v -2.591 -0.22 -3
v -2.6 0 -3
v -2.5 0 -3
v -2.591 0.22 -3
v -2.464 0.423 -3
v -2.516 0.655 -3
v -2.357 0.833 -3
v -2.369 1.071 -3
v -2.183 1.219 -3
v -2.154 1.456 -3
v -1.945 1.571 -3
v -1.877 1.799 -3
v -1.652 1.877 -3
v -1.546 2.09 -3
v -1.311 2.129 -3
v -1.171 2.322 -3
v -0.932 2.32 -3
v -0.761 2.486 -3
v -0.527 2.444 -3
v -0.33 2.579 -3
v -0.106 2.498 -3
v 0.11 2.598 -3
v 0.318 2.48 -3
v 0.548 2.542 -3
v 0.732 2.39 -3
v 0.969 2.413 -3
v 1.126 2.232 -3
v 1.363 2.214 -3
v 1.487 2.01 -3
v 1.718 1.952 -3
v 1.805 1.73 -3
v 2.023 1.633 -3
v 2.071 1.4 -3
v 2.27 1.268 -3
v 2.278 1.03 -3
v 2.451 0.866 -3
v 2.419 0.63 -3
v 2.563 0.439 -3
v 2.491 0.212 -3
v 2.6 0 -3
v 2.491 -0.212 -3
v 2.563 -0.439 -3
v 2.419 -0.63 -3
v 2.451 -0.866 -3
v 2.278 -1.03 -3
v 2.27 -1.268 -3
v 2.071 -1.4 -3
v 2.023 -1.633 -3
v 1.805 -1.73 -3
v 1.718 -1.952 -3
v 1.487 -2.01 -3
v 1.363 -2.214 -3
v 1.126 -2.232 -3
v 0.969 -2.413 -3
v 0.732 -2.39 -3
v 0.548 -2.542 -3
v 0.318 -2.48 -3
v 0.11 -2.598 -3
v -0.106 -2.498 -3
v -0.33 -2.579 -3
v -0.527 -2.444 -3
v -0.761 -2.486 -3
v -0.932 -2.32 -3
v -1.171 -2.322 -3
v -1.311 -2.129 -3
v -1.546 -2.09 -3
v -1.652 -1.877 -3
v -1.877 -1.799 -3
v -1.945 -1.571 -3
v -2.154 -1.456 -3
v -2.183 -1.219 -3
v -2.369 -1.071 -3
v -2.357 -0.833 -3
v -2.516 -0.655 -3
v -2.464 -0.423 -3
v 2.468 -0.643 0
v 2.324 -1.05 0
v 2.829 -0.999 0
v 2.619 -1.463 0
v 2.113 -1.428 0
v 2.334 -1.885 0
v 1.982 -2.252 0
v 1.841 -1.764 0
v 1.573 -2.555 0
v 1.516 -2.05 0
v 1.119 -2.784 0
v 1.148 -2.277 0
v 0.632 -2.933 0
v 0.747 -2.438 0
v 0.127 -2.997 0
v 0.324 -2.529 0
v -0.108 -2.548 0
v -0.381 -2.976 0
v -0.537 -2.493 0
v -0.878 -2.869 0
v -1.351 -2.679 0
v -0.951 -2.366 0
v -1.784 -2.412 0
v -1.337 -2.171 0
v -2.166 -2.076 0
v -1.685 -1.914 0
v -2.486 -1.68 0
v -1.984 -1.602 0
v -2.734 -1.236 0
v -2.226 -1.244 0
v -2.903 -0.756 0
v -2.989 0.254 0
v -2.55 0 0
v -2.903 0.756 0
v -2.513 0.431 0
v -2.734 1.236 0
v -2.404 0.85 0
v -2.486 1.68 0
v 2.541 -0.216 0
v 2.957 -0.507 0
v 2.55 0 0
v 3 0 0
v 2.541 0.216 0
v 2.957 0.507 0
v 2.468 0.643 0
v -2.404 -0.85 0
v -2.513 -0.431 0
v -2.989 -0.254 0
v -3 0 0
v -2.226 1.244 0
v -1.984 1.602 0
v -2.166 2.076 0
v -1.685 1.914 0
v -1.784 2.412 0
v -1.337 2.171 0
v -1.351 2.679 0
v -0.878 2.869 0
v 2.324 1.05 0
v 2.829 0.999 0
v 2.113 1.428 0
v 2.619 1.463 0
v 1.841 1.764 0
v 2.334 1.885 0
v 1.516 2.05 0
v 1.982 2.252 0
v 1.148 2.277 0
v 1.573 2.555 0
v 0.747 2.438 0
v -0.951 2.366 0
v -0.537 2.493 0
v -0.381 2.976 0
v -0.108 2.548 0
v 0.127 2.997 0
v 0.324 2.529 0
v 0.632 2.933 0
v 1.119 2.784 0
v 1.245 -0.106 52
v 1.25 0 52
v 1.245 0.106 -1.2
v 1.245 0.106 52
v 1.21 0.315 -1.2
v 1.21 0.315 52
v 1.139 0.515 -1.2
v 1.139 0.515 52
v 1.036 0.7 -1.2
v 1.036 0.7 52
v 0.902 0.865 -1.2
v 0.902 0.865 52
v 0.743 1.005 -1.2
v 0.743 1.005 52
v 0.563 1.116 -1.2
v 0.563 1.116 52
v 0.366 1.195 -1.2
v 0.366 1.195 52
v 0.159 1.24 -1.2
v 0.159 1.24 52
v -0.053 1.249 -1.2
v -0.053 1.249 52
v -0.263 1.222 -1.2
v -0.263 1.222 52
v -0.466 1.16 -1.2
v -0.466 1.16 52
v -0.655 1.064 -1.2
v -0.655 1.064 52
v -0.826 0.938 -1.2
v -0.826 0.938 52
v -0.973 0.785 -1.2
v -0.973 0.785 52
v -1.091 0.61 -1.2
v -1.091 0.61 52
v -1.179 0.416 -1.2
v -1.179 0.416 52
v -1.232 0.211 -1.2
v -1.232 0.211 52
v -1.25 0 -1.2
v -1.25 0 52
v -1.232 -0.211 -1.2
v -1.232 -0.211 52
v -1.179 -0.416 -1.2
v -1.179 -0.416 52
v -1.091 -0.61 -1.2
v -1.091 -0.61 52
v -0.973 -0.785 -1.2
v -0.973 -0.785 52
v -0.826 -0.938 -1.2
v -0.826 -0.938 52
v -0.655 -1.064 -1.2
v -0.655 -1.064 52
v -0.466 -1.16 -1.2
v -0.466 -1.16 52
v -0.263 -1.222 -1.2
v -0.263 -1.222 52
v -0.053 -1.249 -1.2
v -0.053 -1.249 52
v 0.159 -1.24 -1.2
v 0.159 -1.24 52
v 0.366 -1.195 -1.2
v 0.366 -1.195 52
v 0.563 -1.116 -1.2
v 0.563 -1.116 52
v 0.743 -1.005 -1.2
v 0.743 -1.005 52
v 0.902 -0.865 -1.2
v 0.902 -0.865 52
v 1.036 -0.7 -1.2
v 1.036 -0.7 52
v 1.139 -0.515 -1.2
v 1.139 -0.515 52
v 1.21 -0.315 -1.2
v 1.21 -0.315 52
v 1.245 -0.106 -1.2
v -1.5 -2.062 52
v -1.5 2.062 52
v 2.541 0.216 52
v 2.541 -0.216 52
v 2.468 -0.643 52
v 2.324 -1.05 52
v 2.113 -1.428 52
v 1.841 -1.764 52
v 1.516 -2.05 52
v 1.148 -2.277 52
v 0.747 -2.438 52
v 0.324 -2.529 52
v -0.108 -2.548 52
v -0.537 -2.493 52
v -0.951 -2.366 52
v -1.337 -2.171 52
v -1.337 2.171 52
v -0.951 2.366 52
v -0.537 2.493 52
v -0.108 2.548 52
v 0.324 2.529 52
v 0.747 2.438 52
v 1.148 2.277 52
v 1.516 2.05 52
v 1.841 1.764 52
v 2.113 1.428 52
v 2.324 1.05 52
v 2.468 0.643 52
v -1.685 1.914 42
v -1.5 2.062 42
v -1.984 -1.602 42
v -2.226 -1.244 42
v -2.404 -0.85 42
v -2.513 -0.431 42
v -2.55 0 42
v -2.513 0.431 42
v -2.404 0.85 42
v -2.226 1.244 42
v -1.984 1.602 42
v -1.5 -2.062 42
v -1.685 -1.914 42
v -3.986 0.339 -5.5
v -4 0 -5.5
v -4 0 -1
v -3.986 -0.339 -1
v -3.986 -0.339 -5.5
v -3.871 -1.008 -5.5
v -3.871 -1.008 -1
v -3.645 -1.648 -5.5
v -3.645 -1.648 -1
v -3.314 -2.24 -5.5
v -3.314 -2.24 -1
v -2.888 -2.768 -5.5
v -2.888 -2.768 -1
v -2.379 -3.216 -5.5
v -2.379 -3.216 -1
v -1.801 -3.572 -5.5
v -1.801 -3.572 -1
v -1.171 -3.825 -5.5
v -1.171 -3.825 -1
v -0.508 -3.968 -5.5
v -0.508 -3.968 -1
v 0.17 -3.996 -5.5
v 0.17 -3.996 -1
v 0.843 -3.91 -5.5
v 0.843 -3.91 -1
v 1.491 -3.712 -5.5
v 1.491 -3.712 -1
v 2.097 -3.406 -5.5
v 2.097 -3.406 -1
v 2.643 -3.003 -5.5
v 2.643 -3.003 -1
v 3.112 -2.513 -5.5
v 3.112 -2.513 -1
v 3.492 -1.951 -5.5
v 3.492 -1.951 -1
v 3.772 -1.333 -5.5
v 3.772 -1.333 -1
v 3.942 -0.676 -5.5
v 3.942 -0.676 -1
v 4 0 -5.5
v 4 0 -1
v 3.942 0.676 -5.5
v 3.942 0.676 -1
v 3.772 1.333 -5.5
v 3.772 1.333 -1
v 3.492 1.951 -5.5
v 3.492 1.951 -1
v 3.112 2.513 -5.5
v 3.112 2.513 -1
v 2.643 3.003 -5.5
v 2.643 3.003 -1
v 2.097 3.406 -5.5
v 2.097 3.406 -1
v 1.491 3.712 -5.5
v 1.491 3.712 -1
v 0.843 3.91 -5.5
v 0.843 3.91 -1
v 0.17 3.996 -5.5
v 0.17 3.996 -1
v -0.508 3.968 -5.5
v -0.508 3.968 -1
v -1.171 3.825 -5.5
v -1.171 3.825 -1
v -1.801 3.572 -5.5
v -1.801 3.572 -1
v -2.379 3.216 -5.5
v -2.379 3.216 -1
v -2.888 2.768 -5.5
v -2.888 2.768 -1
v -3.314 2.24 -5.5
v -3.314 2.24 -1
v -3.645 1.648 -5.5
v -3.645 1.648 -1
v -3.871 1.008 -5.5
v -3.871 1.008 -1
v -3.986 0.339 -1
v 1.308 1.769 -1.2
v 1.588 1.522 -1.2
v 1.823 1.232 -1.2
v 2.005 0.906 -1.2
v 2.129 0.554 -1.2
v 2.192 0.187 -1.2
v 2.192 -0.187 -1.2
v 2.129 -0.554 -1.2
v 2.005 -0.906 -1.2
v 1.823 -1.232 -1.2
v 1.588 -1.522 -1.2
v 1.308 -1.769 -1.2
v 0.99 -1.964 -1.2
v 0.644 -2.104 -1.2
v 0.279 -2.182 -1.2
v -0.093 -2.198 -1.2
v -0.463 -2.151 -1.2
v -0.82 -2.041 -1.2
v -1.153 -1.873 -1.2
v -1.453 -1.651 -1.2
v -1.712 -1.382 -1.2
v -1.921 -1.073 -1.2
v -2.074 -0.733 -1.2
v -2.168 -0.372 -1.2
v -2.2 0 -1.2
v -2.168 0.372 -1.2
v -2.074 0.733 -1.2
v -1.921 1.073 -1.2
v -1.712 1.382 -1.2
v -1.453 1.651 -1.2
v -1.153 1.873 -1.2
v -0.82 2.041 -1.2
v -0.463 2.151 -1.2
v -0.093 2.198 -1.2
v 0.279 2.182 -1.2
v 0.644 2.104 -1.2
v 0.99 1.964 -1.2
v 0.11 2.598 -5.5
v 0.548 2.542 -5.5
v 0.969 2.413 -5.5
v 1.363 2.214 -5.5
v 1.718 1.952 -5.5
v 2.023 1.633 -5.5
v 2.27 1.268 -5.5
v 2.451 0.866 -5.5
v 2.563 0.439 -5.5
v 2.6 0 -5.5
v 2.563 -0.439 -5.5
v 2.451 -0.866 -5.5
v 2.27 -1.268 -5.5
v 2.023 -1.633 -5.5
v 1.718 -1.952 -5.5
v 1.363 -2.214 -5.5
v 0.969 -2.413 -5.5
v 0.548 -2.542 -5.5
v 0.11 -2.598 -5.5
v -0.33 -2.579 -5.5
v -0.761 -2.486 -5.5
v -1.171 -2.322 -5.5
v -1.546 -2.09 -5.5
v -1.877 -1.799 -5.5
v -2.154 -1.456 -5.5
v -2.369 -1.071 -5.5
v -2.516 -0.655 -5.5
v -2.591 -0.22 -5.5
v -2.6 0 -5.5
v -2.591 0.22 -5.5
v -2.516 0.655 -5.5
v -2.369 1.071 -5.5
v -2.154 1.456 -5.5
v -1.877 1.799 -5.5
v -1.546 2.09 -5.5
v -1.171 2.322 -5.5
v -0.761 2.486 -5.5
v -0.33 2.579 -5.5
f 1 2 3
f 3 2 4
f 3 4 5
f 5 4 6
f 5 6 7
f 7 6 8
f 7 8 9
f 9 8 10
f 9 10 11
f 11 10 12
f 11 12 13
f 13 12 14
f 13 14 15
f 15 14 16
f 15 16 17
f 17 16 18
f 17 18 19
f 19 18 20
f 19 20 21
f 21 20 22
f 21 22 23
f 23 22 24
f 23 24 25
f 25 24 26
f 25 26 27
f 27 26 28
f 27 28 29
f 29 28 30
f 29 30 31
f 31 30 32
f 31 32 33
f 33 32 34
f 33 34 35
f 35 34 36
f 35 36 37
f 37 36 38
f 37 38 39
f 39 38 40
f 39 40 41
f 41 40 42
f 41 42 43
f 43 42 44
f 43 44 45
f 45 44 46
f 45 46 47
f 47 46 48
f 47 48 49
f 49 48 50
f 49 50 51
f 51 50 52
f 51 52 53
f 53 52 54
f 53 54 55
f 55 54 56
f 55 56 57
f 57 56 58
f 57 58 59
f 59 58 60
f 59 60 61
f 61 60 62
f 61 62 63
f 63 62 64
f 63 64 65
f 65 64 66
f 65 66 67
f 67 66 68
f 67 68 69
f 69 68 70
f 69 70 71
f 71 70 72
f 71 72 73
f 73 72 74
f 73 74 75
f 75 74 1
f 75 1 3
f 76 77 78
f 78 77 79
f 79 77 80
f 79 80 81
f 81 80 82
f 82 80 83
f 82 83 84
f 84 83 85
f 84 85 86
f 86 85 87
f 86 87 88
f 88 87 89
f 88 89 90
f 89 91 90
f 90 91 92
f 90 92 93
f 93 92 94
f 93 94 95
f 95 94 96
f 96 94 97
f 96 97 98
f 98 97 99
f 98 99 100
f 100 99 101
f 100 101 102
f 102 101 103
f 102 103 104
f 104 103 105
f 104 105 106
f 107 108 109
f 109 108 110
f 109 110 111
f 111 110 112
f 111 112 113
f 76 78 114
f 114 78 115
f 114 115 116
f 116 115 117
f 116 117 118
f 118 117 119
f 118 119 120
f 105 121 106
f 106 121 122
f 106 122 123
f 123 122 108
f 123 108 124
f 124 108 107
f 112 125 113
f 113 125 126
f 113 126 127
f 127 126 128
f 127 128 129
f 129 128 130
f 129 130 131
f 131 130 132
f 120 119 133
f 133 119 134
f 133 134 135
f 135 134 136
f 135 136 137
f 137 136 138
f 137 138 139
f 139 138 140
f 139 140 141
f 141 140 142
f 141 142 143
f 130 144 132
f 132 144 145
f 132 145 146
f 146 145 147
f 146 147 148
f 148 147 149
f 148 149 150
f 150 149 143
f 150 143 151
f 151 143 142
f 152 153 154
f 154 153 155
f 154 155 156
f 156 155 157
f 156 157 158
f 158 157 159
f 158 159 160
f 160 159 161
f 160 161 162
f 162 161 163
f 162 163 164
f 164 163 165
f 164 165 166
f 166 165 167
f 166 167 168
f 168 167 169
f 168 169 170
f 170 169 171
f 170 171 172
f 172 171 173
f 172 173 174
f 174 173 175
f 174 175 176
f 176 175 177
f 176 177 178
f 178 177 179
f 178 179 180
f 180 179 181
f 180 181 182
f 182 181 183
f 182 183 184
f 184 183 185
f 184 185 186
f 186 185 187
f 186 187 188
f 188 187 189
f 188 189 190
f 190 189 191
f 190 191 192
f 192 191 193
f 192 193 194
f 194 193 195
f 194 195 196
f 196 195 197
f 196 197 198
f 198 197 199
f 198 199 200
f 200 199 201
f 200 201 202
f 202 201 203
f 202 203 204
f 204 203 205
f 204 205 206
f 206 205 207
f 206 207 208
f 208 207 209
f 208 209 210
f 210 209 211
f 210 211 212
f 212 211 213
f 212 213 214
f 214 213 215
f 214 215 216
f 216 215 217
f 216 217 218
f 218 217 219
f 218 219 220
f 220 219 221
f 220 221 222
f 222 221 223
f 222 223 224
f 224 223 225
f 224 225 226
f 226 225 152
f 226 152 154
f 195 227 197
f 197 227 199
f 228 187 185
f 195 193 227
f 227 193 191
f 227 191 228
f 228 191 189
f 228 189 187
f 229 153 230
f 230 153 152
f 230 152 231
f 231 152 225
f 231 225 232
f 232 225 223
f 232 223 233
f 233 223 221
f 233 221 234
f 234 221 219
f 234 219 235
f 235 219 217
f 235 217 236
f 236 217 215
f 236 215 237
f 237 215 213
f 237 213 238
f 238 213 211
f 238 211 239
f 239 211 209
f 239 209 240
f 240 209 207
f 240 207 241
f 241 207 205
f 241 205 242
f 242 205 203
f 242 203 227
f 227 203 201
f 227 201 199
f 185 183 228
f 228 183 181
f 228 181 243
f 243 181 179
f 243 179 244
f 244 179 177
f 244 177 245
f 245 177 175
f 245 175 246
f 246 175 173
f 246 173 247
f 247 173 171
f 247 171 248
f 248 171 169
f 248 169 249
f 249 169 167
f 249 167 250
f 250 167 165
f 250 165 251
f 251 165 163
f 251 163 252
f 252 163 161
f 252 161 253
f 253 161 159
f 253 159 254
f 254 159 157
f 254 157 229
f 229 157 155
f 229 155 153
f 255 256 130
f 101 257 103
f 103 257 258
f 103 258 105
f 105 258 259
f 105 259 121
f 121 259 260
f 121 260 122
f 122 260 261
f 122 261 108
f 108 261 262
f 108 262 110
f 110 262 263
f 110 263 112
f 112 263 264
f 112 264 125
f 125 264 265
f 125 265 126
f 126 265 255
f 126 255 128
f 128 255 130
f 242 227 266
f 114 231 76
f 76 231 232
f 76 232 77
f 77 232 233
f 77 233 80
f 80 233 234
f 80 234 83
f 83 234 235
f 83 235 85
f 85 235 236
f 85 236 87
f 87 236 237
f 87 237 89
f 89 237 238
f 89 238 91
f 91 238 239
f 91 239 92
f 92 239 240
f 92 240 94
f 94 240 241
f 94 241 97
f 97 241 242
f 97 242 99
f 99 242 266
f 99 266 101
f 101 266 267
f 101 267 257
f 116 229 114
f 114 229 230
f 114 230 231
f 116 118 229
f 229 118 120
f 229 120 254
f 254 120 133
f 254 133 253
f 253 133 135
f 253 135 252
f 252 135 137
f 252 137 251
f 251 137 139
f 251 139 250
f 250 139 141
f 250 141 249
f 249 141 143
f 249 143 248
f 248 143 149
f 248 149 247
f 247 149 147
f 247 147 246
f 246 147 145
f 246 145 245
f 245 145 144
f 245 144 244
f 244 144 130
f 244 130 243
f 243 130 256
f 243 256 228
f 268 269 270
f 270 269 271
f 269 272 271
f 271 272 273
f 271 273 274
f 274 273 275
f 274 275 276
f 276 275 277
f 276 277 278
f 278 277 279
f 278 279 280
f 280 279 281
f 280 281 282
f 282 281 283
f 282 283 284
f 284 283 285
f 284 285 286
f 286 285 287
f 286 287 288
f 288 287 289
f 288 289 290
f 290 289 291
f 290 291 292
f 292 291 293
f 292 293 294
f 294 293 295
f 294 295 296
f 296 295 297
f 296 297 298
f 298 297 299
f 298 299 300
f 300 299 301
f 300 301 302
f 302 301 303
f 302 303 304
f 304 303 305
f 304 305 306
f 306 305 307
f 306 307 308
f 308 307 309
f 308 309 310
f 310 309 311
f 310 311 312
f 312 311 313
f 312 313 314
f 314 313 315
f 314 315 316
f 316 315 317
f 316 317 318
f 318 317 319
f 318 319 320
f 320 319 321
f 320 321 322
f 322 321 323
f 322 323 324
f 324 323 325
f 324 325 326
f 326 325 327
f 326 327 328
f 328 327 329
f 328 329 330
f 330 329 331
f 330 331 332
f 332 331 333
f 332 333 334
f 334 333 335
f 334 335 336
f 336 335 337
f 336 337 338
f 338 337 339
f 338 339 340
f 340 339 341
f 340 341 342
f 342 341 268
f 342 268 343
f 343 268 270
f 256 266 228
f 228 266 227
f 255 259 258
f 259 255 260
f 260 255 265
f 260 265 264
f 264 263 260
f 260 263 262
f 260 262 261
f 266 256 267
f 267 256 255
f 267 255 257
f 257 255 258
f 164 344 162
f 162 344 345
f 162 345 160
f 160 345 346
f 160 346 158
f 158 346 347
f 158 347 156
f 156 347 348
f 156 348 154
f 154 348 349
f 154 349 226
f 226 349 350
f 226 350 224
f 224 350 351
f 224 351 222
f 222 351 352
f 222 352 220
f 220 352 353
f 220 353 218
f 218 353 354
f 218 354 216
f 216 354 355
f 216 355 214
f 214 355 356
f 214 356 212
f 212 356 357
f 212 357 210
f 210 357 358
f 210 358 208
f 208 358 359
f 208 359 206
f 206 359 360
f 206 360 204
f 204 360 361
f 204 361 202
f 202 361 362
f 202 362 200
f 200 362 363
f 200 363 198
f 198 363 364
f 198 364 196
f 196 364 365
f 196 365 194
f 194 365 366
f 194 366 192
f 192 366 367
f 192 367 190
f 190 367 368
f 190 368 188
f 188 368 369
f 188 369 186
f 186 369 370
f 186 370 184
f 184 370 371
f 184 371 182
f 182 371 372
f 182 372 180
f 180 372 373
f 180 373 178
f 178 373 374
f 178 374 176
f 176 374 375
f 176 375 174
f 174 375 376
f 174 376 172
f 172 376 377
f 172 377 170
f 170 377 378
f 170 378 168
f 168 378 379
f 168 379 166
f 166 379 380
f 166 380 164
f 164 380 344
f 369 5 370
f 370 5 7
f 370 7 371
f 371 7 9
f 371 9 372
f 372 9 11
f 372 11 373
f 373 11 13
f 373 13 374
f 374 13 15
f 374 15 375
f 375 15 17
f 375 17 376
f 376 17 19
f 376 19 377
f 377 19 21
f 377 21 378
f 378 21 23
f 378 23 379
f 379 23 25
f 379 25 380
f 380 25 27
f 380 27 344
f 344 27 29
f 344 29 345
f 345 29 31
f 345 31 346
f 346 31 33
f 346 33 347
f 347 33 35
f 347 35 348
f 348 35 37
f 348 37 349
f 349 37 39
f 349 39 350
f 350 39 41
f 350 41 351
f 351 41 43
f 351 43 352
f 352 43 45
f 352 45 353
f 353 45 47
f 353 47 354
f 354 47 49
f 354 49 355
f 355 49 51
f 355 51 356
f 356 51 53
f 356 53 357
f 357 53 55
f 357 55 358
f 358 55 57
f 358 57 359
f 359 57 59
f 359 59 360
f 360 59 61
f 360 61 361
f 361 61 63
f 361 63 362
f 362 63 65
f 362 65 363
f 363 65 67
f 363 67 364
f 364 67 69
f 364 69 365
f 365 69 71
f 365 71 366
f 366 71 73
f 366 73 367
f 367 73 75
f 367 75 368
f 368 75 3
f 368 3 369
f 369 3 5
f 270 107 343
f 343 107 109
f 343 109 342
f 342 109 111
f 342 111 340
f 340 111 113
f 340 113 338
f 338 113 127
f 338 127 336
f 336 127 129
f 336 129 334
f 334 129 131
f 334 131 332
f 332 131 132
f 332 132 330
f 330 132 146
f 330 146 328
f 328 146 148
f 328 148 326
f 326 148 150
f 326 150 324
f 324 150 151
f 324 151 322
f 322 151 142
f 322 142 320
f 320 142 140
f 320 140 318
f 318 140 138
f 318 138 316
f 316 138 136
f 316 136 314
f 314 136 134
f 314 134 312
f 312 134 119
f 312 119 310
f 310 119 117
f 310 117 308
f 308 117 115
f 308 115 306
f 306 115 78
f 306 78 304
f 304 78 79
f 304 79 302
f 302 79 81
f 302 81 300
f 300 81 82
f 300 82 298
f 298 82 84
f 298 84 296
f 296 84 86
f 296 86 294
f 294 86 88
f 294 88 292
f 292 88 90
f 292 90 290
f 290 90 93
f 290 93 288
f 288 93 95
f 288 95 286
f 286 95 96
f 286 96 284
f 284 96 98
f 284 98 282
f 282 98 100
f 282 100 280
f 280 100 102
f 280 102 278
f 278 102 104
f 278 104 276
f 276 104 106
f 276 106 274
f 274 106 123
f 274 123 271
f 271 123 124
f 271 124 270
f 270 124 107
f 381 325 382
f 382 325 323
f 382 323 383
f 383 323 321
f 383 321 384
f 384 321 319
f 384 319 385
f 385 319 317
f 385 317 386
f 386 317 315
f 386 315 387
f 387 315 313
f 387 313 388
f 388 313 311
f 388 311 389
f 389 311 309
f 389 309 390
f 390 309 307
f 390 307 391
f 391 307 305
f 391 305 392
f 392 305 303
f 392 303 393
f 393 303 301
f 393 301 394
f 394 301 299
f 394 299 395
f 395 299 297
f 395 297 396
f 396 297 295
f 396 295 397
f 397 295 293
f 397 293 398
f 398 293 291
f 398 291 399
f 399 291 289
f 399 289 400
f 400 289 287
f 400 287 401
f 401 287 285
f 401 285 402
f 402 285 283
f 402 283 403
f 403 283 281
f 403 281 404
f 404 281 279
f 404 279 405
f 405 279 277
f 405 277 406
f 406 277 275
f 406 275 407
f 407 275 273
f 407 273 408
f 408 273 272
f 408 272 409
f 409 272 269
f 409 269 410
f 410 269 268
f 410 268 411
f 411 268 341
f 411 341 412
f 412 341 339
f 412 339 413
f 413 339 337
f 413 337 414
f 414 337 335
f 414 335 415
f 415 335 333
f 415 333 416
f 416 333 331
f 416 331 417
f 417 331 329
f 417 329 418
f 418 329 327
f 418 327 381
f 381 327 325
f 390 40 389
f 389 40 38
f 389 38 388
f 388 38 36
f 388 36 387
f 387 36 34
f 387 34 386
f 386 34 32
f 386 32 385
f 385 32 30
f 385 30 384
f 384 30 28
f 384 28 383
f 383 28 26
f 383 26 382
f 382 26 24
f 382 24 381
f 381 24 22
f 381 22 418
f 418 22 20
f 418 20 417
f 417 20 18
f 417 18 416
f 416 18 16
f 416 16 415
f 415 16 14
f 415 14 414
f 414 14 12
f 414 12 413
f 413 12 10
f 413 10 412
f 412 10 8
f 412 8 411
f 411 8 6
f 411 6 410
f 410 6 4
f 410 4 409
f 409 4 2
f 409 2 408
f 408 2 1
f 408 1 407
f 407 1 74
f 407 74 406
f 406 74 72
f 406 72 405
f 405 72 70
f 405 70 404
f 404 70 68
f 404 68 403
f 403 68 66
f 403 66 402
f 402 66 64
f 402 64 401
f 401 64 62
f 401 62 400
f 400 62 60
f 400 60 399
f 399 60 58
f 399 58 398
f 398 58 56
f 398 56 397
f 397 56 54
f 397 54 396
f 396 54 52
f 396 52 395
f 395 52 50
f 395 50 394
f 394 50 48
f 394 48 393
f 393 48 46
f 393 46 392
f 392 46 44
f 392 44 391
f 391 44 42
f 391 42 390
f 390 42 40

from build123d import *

# Parameters (mm, degrees)
SKETCH_1_R          = 2.55
SKETCH_1_R_2        = 1.25
EXTRUDE_1_DEPTH     = 52
EXTRUDE_START       = 3
SKETCH_2_R          = 4
SKETCH_2_R_2        = 1.25
EXTRUDE_2_DEPTH     = 3
CUT_EXTRUDE_START   = -10
CUT_EXTRUDE_2_DEPTH = 10
EXTRUDE_START_2     = 2.5
SKETCH_9_R          = 4
SKETCH_9_R_2        = 2.6
EXTRUDE_3_DEPTH     = 2.5


with BuildPart() as part:
    # 草图1 → 凸台-拉伸1 (new body)
    with BuildSketch(Plane.XY):
        with Locations(Location((0, 0, 0), (0, 0, 180))):
            Circle(SKETCH_1_R)
        with Locations(Location((0, 0, 0), (0, 0, 180))):
            Circle(SKETCH_1_R_2, mode=Mode.SUBTRACT)
    extrude(amount=EXTRUDE_1_DEPTH)

    # 草图2 → 凸台-拉伸2 (add)
    with BuildSketch(Plane(origin=(0, 0, 0), x_dir=(-1, 0, 0), z_dir=(0, 0, -1)).offset(EXTRUDE_START)):
        Circle(SKETCH_2_R)
        Circle(SKETCH_2_R_2, mode=Mode.SUBTRACT)
    extrude(amount=-EXTRUDE_2_DEPTH)

    # 草图4 → 切除-拉伸2 (cut)
    with BuildSketch(Plane.XY.offset(52).offset(CUT_EXTRUDE_START)):
        with BuildLine():
            Line((-1.5, -2.062159063), (-1.5, 2.062159063))
            ThreePointArc((-1.5, 2.062159063), (-2.55, 0), (-1.5, -2.062159063))
        make_face()
    extrude(amount=CUT_EXTRUDE_2_DEPTH, mode=Mode.SUBTRACT)

    # 草图6 → 切除-旋转1 (revolve, cut)
    with BuildSketch(Plane(origin=(0, 0, 0), x_dir=(1, 0, 0), z_dir=(0, 1, 0)), mode=Mode.PRIVATE) as cut_revolve_1_sk:
        Polygon((0, 1.2), (2.2, 1.2), (2.5, 3), (0, 3), align=None)
    revolve(cut_revolve_1_sk.sketch.rotate(Axis((0, 0, -3), (0, 0, 1)), 180), axis=Axis((0, 0, -3), (0, 0, 1)), mode=Mode.SUBTRACT)

    # 草图8 → 切除-旋转3 (revolve, cut)
    with BuildSketch(Plane(origin=(0, 0, 0), x_dir=(1, 0, 0), z_dir=(0, 1, 0))):
        Polygon((4, 1), (3, 0), (4, 0), align=None)
    revolve(axis=Axis((0, 0, 0), (0, 0, -1)), mode=Mode.SUBTRACT)

    # 草图9 → 凸台-拉伸3 (add)
    with BuildSketch(Plane(origin=(0, 0, -3), x_dir=(-1, 0, 0), z_dir=(0, 0, -1)).offset(EXTRUDE_START_2)):
        with Locations(Location((0, 0, 0), (0, 0, 180))):
            Circle(SKETCH_9_R)
        Circle(SKETCH_9_R_2, mode=Mode.SUBTRACT)
    extrude(amount=-EXTRUDE_3_DEPTH)


solid = part.part
